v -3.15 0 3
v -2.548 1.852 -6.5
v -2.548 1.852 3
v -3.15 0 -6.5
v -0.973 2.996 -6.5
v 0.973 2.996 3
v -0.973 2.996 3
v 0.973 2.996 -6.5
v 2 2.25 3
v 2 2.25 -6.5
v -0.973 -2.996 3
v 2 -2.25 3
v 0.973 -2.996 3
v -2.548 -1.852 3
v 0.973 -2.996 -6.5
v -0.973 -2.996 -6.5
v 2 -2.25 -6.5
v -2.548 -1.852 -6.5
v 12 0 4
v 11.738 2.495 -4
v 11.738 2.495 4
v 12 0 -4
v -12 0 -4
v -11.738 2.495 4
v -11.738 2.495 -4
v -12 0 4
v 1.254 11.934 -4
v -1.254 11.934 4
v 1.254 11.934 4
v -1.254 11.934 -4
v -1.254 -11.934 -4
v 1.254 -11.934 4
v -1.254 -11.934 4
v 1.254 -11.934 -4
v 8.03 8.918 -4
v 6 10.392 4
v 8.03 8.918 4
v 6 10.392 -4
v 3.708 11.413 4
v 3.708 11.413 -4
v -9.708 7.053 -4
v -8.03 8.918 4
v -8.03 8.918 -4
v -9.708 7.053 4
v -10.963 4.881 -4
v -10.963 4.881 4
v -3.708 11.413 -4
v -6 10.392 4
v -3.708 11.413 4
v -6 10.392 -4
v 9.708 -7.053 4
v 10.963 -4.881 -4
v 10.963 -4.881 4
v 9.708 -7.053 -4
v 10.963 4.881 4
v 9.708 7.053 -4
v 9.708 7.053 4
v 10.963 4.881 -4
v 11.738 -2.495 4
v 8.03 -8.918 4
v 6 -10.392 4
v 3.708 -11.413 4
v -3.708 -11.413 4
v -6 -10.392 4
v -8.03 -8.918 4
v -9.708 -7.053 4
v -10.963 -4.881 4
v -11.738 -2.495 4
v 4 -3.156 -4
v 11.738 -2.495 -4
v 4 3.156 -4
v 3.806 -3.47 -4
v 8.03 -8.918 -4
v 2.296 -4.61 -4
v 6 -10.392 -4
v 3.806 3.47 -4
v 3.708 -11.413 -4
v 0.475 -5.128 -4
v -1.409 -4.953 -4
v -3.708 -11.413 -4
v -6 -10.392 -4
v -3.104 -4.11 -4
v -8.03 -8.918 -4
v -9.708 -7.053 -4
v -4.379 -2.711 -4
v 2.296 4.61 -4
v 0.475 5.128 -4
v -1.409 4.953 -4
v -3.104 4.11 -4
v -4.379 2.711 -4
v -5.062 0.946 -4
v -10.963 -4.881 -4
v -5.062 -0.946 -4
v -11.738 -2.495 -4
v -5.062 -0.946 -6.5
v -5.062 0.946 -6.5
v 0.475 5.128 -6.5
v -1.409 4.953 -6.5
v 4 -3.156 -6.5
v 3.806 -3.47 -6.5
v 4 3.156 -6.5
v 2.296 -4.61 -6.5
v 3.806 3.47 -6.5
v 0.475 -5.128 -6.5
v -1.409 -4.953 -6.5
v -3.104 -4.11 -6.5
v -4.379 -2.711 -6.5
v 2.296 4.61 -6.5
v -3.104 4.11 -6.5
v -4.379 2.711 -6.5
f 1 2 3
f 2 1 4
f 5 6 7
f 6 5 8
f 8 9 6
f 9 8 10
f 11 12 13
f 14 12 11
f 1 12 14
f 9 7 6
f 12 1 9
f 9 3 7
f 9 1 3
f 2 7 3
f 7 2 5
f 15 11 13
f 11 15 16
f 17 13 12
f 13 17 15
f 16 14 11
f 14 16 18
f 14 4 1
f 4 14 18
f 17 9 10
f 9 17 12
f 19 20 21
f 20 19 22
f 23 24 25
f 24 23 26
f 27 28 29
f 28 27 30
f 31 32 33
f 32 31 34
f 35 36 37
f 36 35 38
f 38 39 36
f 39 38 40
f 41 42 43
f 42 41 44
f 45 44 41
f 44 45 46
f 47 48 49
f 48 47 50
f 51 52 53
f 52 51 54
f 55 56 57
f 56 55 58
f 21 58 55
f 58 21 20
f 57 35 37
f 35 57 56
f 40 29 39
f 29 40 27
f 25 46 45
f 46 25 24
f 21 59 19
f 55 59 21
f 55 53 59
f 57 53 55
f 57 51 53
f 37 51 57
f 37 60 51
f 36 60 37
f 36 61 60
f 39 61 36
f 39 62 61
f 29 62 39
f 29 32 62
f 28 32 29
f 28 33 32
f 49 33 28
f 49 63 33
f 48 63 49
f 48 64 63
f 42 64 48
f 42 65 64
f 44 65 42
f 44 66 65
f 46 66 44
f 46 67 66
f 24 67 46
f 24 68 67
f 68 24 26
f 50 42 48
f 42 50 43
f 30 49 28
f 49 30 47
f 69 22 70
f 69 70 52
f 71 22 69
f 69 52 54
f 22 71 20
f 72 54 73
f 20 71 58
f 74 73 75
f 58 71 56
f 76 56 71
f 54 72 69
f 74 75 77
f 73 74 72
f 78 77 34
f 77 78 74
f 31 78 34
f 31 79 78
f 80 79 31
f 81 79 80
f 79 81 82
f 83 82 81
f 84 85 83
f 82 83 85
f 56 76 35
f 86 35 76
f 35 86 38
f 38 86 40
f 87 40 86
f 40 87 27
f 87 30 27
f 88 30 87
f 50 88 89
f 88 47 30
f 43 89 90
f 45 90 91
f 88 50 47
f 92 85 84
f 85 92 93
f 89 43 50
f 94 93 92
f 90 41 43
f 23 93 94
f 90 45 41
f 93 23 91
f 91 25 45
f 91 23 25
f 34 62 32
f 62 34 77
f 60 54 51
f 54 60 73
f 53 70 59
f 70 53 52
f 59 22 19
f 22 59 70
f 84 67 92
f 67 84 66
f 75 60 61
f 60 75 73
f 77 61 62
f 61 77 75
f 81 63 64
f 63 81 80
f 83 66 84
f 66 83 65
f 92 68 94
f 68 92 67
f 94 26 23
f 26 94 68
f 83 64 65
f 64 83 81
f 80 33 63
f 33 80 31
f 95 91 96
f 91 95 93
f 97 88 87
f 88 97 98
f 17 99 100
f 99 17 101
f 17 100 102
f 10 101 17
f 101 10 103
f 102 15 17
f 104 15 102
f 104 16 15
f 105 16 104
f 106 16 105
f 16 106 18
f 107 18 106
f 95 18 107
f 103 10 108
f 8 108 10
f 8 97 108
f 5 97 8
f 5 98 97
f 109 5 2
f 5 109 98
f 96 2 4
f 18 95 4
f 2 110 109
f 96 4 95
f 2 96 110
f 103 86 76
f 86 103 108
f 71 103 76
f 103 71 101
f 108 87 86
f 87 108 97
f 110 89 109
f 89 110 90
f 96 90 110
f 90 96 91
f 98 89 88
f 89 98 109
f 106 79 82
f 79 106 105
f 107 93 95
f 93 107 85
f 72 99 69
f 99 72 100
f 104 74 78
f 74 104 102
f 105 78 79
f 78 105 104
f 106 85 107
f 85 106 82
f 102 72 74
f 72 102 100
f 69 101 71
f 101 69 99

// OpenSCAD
height = 8;
width = 12;

centerColumn = 3.15;

union() {
    difference() {
        cylinder(height, width, width, true);
        
        translate([0, 0, -1])
        difference() {
            cylinder(height, centerColumn, centerColumn, true);
            translate([12, 0, 0])
                cube(20, true);
        };
    };

    translate([0, 0, -3.5])
    difference() {
        difference() {
            cylinder(height - 2, centerColumn + 2, centerColumn + 2, true);
            translate([14, 0, 0])
                cube(20, true);
        };
        difference() {
            cylinder(height - 2, centerColumn, centerColumn, true);
            translate([12, 0, 0])
                cube(20, true);
        };
    }
}
